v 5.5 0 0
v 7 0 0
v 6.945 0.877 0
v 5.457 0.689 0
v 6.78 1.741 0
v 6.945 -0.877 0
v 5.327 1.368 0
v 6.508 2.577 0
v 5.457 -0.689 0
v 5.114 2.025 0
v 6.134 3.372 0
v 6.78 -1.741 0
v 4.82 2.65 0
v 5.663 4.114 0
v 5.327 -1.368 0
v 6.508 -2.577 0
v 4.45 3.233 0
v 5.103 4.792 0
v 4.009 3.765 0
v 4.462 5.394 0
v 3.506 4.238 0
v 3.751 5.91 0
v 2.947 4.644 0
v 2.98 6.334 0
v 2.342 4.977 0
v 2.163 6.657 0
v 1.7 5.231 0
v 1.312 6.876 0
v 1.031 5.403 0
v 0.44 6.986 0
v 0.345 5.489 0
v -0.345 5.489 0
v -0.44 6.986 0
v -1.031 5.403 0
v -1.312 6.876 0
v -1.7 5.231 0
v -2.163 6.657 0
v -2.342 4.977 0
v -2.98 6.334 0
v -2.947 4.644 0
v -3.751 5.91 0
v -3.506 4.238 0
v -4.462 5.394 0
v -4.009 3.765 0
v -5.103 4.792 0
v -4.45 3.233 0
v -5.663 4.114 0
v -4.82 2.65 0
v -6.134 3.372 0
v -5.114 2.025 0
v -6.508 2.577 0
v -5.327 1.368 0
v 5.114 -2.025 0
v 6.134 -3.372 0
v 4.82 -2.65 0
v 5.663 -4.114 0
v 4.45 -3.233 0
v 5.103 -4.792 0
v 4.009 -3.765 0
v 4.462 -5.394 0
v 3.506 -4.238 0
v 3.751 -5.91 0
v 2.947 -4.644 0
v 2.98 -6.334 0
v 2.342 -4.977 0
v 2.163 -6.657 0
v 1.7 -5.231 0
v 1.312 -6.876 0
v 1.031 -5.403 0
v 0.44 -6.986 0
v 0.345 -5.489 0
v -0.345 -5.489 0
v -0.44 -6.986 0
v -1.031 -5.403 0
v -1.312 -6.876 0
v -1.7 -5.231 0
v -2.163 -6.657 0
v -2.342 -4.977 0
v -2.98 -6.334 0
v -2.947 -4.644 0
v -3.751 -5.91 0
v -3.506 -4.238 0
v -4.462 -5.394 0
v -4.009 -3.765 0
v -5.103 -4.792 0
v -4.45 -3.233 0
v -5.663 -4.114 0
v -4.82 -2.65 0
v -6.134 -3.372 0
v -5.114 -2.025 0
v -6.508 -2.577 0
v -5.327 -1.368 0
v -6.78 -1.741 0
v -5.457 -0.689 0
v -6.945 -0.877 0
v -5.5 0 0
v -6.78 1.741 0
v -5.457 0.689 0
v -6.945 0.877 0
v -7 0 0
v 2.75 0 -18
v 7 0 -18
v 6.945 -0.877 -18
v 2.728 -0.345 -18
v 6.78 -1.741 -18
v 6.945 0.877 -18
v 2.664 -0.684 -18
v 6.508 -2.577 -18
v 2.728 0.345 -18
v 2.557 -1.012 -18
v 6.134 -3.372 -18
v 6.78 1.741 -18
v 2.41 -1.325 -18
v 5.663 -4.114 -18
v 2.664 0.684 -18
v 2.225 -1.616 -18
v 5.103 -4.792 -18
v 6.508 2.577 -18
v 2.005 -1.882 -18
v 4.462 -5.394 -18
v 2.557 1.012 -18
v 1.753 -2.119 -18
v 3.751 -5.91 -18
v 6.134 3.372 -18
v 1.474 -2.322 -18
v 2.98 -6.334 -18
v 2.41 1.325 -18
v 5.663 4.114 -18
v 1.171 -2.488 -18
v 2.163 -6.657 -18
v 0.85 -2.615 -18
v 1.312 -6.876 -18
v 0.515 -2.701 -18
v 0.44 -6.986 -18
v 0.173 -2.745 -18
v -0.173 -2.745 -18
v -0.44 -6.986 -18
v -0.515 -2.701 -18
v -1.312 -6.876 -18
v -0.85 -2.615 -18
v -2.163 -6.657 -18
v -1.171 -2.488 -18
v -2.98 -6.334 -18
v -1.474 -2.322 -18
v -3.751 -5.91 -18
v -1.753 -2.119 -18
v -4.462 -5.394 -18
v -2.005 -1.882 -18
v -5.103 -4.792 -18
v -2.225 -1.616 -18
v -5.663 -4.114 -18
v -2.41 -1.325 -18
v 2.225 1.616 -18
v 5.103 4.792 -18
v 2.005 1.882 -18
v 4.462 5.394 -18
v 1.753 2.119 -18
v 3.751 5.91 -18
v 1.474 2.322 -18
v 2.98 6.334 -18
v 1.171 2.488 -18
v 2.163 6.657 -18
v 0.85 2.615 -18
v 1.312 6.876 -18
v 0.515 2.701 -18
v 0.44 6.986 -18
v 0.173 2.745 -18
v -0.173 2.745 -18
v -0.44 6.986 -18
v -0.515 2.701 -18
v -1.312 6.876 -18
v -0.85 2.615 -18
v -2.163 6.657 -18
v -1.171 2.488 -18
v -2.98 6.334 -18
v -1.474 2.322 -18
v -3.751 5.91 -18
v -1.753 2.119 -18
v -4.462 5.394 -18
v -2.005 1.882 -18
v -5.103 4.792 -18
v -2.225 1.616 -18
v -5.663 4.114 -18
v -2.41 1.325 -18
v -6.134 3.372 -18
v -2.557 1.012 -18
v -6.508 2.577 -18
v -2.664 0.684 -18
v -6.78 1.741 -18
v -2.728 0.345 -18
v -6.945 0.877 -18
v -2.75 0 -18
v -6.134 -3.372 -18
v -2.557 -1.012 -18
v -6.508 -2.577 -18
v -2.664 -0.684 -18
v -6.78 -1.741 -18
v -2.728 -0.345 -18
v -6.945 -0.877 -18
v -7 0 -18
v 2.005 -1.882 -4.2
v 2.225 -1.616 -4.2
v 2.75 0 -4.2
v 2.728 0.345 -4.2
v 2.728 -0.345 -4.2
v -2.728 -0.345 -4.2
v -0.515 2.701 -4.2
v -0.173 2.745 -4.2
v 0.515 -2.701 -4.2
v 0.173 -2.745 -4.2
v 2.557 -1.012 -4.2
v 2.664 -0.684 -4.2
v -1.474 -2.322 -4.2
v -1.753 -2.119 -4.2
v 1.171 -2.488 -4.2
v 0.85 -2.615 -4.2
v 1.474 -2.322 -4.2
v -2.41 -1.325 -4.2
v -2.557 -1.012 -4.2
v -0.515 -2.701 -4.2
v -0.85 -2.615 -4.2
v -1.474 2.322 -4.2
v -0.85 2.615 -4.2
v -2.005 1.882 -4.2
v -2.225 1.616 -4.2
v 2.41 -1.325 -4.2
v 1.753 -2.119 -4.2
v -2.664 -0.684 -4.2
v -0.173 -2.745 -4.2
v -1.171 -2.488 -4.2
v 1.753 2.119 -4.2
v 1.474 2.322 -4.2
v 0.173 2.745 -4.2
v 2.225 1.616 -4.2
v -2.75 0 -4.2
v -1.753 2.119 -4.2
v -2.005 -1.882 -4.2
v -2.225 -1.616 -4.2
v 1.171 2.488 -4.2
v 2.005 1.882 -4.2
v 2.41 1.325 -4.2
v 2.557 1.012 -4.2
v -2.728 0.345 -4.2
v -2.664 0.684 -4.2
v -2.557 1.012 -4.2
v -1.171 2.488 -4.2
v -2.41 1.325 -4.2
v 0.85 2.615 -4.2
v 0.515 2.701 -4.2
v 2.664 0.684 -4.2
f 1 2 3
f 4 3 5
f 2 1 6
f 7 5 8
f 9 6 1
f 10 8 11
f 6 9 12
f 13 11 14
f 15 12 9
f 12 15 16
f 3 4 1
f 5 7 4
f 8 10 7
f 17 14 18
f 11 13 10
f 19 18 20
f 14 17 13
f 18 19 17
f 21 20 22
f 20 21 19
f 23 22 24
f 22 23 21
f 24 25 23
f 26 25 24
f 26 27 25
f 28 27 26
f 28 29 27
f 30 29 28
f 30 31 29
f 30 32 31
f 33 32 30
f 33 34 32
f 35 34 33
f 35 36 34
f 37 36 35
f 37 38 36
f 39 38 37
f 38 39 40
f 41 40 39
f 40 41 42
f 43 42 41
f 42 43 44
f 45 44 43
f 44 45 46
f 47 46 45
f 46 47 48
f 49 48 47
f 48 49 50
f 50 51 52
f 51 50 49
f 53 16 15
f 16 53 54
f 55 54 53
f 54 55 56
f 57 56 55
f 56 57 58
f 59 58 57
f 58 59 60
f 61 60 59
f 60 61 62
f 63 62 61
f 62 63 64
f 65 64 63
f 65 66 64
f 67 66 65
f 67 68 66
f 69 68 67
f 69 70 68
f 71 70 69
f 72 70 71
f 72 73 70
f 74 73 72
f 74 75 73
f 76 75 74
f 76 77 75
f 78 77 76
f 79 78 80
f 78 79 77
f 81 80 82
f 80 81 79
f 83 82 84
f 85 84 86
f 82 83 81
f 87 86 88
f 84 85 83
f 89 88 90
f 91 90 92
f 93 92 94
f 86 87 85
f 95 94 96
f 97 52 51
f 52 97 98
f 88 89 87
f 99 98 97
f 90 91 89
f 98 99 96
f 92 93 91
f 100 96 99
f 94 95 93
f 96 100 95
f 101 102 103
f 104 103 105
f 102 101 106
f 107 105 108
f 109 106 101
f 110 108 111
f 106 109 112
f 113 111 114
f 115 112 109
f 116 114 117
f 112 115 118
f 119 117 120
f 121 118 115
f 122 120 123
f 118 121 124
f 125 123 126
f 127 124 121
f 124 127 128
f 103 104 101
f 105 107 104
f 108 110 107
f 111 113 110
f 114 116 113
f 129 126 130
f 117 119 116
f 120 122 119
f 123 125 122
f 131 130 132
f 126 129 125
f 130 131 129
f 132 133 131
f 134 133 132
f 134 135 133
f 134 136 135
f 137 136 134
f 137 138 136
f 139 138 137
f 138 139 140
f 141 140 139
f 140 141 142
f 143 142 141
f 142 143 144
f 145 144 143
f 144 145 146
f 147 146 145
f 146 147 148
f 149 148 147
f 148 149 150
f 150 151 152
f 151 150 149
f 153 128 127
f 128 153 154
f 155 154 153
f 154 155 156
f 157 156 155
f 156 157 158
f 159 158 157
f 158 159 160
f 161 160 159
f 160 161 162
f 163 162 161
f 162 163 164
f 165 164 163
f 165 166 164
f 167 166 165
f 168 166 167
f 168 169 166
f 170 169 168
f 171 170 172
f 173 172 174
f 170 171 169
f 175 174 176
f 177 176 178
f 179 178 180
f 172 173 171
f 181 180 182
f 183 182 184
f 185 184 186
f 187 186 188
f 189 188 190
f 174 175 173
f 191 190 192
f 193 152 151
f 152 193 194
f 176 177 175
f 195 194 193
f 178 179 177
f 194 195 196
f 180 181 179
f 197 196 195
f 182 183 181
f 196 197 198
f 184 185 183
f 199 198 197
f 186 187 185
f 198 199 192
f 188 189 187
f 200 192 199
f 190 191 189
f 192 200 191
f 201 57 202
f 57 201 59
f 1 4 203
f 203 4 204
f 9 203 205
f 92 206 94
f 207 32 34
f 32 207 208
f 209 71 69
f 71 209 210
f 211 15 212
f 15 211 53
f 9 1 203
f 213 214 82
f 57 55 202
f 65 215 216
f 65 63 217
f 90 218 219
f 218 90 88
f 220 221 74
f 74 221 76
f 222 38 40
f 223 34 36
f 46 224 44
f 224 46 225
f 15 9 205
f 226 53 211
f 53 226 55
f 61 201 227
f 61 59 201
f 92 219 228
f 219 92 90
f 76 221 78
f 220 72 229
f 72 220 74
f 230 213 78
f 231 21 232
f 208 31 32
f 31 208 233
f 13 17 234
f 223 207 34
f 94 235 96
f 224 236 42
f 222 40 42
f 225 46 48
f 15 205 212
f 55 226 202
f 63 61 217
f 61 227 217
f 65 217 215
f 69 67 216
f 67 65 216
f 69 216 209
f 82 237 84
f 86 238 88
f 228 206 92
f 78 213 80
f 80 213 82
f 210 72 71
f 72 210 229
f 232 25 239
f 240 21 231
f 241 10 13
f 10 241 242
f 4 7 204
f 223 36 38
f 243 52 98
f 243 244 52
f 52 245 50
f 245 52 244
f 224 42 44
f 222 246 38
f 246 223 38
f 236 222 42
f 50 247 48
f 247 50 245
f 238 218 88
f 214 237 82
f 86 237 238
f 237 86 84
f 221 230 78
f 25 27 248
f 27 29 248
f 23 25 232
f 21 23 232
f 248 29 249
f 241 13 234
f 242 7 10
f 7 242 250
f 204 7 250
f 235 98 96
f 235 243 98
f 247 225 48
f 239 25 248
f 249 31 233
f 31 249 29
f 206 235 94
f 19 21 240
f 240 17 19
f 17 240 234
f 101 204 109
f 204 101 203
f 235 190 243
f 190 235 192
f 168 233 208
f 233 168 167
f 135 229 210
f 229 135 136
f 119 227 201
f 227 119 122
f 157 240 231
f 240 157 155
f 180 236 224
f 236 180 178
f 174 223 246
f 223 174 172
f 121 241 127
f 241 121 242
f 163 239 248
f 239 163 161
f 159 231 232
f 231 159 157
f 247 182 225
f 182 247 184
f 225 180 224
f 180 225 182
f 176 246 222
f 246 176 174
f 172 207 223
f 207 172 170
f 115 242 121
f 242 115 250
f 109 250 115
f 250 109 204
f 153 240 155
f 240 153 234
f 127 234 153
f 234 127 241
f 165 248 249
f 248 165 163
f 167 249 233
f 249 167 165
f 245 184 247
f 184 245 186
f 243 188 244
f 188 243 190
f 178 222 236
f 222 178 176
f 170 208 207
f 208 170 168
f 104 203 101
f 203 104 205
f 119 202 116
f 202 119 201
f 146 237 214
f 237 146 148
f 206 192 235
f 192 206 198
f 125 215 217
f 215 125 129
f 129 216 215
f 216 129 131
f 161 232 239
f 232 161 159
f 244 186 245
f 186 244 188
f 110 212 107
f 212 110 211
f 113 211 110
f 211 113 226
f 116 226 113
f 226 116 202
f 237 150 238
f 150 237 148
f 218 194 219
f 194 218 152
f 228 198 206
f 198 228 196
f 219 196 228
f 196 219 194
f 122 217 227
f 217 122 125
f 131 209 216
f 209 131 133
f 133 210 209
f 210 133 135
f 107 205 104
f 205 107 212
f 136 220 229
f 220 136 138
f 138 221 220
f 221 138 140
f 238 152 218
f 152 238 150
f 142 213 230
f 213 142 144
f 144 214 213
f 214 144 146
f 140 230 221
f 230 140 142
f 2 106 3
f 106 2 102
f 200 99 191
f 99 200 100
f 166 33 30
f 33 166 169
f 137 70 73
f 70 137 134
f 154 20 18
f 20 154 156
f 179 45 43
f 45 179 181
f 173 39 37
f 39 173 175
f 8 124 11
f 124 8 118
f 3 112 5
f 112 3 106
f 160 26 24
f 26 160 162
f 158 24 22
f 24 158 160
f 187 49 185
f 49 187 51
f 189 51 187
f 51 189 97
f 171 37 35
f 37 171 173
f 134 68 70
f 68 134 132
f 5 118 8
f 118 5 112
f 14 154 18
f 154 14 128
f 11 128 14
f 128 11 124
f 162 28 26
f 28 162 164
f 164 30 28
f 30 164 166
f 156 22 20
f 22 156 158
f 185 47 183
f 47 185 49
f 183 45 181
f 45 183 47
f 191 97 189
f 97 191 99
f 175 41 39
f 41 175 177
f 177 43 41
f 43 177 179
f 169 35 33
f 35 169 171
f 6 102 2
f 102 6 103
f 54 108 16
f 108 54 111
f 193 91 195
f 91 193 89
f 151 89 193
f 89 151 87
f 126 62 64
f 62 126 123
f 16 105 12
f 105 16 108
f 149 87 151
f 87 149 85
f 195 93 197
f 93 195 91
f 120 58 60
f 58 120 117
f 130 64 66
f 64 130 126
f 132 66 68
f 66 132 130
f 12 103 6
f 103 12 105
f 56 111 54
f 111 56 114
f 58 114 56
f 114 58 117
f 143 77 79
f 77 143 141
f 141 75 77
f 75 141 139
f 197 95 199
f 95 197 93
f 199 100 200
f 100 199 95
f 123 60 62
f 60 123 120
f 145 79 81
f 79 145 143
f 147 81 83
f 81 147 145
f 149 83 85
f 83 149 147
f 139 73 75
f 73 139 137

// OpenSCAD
$fn = 50;


difference() {
	union() {
		translate(v = [0, 0, -18.0000000000]) {
			cylinder(h = 18, r = 7.0000000000);
		}
		cylinder(h = 0, r = 10.0000000000);
	}
	union() {
		translate(v = [0, 0, 0]) {
			rotate(a = [0, 0, 0]) {
				difference() {
					union() {
						#translate(v = [0, 0, -18.0000000000]) {
							cylinder(h = 18, r = 2.2500000000);
						}
						#translate(v = [0, 0, -4.2000000000]) {
							cylinder(h = 4.2000000000, r1 = 2.7500000000, r2 = 5.5000000000);
						}
						#translate(v = [0, 0, -18.0000000000]) {
							cylinder(h = 18, r = 2.7500000000);
						}
						#translate(v = [0, 0, -18.0000000000]) {
							cylinder(h = 18, r = 2.2500000000);
						}
					}
					union();
				}
			}
		}
	}
}
